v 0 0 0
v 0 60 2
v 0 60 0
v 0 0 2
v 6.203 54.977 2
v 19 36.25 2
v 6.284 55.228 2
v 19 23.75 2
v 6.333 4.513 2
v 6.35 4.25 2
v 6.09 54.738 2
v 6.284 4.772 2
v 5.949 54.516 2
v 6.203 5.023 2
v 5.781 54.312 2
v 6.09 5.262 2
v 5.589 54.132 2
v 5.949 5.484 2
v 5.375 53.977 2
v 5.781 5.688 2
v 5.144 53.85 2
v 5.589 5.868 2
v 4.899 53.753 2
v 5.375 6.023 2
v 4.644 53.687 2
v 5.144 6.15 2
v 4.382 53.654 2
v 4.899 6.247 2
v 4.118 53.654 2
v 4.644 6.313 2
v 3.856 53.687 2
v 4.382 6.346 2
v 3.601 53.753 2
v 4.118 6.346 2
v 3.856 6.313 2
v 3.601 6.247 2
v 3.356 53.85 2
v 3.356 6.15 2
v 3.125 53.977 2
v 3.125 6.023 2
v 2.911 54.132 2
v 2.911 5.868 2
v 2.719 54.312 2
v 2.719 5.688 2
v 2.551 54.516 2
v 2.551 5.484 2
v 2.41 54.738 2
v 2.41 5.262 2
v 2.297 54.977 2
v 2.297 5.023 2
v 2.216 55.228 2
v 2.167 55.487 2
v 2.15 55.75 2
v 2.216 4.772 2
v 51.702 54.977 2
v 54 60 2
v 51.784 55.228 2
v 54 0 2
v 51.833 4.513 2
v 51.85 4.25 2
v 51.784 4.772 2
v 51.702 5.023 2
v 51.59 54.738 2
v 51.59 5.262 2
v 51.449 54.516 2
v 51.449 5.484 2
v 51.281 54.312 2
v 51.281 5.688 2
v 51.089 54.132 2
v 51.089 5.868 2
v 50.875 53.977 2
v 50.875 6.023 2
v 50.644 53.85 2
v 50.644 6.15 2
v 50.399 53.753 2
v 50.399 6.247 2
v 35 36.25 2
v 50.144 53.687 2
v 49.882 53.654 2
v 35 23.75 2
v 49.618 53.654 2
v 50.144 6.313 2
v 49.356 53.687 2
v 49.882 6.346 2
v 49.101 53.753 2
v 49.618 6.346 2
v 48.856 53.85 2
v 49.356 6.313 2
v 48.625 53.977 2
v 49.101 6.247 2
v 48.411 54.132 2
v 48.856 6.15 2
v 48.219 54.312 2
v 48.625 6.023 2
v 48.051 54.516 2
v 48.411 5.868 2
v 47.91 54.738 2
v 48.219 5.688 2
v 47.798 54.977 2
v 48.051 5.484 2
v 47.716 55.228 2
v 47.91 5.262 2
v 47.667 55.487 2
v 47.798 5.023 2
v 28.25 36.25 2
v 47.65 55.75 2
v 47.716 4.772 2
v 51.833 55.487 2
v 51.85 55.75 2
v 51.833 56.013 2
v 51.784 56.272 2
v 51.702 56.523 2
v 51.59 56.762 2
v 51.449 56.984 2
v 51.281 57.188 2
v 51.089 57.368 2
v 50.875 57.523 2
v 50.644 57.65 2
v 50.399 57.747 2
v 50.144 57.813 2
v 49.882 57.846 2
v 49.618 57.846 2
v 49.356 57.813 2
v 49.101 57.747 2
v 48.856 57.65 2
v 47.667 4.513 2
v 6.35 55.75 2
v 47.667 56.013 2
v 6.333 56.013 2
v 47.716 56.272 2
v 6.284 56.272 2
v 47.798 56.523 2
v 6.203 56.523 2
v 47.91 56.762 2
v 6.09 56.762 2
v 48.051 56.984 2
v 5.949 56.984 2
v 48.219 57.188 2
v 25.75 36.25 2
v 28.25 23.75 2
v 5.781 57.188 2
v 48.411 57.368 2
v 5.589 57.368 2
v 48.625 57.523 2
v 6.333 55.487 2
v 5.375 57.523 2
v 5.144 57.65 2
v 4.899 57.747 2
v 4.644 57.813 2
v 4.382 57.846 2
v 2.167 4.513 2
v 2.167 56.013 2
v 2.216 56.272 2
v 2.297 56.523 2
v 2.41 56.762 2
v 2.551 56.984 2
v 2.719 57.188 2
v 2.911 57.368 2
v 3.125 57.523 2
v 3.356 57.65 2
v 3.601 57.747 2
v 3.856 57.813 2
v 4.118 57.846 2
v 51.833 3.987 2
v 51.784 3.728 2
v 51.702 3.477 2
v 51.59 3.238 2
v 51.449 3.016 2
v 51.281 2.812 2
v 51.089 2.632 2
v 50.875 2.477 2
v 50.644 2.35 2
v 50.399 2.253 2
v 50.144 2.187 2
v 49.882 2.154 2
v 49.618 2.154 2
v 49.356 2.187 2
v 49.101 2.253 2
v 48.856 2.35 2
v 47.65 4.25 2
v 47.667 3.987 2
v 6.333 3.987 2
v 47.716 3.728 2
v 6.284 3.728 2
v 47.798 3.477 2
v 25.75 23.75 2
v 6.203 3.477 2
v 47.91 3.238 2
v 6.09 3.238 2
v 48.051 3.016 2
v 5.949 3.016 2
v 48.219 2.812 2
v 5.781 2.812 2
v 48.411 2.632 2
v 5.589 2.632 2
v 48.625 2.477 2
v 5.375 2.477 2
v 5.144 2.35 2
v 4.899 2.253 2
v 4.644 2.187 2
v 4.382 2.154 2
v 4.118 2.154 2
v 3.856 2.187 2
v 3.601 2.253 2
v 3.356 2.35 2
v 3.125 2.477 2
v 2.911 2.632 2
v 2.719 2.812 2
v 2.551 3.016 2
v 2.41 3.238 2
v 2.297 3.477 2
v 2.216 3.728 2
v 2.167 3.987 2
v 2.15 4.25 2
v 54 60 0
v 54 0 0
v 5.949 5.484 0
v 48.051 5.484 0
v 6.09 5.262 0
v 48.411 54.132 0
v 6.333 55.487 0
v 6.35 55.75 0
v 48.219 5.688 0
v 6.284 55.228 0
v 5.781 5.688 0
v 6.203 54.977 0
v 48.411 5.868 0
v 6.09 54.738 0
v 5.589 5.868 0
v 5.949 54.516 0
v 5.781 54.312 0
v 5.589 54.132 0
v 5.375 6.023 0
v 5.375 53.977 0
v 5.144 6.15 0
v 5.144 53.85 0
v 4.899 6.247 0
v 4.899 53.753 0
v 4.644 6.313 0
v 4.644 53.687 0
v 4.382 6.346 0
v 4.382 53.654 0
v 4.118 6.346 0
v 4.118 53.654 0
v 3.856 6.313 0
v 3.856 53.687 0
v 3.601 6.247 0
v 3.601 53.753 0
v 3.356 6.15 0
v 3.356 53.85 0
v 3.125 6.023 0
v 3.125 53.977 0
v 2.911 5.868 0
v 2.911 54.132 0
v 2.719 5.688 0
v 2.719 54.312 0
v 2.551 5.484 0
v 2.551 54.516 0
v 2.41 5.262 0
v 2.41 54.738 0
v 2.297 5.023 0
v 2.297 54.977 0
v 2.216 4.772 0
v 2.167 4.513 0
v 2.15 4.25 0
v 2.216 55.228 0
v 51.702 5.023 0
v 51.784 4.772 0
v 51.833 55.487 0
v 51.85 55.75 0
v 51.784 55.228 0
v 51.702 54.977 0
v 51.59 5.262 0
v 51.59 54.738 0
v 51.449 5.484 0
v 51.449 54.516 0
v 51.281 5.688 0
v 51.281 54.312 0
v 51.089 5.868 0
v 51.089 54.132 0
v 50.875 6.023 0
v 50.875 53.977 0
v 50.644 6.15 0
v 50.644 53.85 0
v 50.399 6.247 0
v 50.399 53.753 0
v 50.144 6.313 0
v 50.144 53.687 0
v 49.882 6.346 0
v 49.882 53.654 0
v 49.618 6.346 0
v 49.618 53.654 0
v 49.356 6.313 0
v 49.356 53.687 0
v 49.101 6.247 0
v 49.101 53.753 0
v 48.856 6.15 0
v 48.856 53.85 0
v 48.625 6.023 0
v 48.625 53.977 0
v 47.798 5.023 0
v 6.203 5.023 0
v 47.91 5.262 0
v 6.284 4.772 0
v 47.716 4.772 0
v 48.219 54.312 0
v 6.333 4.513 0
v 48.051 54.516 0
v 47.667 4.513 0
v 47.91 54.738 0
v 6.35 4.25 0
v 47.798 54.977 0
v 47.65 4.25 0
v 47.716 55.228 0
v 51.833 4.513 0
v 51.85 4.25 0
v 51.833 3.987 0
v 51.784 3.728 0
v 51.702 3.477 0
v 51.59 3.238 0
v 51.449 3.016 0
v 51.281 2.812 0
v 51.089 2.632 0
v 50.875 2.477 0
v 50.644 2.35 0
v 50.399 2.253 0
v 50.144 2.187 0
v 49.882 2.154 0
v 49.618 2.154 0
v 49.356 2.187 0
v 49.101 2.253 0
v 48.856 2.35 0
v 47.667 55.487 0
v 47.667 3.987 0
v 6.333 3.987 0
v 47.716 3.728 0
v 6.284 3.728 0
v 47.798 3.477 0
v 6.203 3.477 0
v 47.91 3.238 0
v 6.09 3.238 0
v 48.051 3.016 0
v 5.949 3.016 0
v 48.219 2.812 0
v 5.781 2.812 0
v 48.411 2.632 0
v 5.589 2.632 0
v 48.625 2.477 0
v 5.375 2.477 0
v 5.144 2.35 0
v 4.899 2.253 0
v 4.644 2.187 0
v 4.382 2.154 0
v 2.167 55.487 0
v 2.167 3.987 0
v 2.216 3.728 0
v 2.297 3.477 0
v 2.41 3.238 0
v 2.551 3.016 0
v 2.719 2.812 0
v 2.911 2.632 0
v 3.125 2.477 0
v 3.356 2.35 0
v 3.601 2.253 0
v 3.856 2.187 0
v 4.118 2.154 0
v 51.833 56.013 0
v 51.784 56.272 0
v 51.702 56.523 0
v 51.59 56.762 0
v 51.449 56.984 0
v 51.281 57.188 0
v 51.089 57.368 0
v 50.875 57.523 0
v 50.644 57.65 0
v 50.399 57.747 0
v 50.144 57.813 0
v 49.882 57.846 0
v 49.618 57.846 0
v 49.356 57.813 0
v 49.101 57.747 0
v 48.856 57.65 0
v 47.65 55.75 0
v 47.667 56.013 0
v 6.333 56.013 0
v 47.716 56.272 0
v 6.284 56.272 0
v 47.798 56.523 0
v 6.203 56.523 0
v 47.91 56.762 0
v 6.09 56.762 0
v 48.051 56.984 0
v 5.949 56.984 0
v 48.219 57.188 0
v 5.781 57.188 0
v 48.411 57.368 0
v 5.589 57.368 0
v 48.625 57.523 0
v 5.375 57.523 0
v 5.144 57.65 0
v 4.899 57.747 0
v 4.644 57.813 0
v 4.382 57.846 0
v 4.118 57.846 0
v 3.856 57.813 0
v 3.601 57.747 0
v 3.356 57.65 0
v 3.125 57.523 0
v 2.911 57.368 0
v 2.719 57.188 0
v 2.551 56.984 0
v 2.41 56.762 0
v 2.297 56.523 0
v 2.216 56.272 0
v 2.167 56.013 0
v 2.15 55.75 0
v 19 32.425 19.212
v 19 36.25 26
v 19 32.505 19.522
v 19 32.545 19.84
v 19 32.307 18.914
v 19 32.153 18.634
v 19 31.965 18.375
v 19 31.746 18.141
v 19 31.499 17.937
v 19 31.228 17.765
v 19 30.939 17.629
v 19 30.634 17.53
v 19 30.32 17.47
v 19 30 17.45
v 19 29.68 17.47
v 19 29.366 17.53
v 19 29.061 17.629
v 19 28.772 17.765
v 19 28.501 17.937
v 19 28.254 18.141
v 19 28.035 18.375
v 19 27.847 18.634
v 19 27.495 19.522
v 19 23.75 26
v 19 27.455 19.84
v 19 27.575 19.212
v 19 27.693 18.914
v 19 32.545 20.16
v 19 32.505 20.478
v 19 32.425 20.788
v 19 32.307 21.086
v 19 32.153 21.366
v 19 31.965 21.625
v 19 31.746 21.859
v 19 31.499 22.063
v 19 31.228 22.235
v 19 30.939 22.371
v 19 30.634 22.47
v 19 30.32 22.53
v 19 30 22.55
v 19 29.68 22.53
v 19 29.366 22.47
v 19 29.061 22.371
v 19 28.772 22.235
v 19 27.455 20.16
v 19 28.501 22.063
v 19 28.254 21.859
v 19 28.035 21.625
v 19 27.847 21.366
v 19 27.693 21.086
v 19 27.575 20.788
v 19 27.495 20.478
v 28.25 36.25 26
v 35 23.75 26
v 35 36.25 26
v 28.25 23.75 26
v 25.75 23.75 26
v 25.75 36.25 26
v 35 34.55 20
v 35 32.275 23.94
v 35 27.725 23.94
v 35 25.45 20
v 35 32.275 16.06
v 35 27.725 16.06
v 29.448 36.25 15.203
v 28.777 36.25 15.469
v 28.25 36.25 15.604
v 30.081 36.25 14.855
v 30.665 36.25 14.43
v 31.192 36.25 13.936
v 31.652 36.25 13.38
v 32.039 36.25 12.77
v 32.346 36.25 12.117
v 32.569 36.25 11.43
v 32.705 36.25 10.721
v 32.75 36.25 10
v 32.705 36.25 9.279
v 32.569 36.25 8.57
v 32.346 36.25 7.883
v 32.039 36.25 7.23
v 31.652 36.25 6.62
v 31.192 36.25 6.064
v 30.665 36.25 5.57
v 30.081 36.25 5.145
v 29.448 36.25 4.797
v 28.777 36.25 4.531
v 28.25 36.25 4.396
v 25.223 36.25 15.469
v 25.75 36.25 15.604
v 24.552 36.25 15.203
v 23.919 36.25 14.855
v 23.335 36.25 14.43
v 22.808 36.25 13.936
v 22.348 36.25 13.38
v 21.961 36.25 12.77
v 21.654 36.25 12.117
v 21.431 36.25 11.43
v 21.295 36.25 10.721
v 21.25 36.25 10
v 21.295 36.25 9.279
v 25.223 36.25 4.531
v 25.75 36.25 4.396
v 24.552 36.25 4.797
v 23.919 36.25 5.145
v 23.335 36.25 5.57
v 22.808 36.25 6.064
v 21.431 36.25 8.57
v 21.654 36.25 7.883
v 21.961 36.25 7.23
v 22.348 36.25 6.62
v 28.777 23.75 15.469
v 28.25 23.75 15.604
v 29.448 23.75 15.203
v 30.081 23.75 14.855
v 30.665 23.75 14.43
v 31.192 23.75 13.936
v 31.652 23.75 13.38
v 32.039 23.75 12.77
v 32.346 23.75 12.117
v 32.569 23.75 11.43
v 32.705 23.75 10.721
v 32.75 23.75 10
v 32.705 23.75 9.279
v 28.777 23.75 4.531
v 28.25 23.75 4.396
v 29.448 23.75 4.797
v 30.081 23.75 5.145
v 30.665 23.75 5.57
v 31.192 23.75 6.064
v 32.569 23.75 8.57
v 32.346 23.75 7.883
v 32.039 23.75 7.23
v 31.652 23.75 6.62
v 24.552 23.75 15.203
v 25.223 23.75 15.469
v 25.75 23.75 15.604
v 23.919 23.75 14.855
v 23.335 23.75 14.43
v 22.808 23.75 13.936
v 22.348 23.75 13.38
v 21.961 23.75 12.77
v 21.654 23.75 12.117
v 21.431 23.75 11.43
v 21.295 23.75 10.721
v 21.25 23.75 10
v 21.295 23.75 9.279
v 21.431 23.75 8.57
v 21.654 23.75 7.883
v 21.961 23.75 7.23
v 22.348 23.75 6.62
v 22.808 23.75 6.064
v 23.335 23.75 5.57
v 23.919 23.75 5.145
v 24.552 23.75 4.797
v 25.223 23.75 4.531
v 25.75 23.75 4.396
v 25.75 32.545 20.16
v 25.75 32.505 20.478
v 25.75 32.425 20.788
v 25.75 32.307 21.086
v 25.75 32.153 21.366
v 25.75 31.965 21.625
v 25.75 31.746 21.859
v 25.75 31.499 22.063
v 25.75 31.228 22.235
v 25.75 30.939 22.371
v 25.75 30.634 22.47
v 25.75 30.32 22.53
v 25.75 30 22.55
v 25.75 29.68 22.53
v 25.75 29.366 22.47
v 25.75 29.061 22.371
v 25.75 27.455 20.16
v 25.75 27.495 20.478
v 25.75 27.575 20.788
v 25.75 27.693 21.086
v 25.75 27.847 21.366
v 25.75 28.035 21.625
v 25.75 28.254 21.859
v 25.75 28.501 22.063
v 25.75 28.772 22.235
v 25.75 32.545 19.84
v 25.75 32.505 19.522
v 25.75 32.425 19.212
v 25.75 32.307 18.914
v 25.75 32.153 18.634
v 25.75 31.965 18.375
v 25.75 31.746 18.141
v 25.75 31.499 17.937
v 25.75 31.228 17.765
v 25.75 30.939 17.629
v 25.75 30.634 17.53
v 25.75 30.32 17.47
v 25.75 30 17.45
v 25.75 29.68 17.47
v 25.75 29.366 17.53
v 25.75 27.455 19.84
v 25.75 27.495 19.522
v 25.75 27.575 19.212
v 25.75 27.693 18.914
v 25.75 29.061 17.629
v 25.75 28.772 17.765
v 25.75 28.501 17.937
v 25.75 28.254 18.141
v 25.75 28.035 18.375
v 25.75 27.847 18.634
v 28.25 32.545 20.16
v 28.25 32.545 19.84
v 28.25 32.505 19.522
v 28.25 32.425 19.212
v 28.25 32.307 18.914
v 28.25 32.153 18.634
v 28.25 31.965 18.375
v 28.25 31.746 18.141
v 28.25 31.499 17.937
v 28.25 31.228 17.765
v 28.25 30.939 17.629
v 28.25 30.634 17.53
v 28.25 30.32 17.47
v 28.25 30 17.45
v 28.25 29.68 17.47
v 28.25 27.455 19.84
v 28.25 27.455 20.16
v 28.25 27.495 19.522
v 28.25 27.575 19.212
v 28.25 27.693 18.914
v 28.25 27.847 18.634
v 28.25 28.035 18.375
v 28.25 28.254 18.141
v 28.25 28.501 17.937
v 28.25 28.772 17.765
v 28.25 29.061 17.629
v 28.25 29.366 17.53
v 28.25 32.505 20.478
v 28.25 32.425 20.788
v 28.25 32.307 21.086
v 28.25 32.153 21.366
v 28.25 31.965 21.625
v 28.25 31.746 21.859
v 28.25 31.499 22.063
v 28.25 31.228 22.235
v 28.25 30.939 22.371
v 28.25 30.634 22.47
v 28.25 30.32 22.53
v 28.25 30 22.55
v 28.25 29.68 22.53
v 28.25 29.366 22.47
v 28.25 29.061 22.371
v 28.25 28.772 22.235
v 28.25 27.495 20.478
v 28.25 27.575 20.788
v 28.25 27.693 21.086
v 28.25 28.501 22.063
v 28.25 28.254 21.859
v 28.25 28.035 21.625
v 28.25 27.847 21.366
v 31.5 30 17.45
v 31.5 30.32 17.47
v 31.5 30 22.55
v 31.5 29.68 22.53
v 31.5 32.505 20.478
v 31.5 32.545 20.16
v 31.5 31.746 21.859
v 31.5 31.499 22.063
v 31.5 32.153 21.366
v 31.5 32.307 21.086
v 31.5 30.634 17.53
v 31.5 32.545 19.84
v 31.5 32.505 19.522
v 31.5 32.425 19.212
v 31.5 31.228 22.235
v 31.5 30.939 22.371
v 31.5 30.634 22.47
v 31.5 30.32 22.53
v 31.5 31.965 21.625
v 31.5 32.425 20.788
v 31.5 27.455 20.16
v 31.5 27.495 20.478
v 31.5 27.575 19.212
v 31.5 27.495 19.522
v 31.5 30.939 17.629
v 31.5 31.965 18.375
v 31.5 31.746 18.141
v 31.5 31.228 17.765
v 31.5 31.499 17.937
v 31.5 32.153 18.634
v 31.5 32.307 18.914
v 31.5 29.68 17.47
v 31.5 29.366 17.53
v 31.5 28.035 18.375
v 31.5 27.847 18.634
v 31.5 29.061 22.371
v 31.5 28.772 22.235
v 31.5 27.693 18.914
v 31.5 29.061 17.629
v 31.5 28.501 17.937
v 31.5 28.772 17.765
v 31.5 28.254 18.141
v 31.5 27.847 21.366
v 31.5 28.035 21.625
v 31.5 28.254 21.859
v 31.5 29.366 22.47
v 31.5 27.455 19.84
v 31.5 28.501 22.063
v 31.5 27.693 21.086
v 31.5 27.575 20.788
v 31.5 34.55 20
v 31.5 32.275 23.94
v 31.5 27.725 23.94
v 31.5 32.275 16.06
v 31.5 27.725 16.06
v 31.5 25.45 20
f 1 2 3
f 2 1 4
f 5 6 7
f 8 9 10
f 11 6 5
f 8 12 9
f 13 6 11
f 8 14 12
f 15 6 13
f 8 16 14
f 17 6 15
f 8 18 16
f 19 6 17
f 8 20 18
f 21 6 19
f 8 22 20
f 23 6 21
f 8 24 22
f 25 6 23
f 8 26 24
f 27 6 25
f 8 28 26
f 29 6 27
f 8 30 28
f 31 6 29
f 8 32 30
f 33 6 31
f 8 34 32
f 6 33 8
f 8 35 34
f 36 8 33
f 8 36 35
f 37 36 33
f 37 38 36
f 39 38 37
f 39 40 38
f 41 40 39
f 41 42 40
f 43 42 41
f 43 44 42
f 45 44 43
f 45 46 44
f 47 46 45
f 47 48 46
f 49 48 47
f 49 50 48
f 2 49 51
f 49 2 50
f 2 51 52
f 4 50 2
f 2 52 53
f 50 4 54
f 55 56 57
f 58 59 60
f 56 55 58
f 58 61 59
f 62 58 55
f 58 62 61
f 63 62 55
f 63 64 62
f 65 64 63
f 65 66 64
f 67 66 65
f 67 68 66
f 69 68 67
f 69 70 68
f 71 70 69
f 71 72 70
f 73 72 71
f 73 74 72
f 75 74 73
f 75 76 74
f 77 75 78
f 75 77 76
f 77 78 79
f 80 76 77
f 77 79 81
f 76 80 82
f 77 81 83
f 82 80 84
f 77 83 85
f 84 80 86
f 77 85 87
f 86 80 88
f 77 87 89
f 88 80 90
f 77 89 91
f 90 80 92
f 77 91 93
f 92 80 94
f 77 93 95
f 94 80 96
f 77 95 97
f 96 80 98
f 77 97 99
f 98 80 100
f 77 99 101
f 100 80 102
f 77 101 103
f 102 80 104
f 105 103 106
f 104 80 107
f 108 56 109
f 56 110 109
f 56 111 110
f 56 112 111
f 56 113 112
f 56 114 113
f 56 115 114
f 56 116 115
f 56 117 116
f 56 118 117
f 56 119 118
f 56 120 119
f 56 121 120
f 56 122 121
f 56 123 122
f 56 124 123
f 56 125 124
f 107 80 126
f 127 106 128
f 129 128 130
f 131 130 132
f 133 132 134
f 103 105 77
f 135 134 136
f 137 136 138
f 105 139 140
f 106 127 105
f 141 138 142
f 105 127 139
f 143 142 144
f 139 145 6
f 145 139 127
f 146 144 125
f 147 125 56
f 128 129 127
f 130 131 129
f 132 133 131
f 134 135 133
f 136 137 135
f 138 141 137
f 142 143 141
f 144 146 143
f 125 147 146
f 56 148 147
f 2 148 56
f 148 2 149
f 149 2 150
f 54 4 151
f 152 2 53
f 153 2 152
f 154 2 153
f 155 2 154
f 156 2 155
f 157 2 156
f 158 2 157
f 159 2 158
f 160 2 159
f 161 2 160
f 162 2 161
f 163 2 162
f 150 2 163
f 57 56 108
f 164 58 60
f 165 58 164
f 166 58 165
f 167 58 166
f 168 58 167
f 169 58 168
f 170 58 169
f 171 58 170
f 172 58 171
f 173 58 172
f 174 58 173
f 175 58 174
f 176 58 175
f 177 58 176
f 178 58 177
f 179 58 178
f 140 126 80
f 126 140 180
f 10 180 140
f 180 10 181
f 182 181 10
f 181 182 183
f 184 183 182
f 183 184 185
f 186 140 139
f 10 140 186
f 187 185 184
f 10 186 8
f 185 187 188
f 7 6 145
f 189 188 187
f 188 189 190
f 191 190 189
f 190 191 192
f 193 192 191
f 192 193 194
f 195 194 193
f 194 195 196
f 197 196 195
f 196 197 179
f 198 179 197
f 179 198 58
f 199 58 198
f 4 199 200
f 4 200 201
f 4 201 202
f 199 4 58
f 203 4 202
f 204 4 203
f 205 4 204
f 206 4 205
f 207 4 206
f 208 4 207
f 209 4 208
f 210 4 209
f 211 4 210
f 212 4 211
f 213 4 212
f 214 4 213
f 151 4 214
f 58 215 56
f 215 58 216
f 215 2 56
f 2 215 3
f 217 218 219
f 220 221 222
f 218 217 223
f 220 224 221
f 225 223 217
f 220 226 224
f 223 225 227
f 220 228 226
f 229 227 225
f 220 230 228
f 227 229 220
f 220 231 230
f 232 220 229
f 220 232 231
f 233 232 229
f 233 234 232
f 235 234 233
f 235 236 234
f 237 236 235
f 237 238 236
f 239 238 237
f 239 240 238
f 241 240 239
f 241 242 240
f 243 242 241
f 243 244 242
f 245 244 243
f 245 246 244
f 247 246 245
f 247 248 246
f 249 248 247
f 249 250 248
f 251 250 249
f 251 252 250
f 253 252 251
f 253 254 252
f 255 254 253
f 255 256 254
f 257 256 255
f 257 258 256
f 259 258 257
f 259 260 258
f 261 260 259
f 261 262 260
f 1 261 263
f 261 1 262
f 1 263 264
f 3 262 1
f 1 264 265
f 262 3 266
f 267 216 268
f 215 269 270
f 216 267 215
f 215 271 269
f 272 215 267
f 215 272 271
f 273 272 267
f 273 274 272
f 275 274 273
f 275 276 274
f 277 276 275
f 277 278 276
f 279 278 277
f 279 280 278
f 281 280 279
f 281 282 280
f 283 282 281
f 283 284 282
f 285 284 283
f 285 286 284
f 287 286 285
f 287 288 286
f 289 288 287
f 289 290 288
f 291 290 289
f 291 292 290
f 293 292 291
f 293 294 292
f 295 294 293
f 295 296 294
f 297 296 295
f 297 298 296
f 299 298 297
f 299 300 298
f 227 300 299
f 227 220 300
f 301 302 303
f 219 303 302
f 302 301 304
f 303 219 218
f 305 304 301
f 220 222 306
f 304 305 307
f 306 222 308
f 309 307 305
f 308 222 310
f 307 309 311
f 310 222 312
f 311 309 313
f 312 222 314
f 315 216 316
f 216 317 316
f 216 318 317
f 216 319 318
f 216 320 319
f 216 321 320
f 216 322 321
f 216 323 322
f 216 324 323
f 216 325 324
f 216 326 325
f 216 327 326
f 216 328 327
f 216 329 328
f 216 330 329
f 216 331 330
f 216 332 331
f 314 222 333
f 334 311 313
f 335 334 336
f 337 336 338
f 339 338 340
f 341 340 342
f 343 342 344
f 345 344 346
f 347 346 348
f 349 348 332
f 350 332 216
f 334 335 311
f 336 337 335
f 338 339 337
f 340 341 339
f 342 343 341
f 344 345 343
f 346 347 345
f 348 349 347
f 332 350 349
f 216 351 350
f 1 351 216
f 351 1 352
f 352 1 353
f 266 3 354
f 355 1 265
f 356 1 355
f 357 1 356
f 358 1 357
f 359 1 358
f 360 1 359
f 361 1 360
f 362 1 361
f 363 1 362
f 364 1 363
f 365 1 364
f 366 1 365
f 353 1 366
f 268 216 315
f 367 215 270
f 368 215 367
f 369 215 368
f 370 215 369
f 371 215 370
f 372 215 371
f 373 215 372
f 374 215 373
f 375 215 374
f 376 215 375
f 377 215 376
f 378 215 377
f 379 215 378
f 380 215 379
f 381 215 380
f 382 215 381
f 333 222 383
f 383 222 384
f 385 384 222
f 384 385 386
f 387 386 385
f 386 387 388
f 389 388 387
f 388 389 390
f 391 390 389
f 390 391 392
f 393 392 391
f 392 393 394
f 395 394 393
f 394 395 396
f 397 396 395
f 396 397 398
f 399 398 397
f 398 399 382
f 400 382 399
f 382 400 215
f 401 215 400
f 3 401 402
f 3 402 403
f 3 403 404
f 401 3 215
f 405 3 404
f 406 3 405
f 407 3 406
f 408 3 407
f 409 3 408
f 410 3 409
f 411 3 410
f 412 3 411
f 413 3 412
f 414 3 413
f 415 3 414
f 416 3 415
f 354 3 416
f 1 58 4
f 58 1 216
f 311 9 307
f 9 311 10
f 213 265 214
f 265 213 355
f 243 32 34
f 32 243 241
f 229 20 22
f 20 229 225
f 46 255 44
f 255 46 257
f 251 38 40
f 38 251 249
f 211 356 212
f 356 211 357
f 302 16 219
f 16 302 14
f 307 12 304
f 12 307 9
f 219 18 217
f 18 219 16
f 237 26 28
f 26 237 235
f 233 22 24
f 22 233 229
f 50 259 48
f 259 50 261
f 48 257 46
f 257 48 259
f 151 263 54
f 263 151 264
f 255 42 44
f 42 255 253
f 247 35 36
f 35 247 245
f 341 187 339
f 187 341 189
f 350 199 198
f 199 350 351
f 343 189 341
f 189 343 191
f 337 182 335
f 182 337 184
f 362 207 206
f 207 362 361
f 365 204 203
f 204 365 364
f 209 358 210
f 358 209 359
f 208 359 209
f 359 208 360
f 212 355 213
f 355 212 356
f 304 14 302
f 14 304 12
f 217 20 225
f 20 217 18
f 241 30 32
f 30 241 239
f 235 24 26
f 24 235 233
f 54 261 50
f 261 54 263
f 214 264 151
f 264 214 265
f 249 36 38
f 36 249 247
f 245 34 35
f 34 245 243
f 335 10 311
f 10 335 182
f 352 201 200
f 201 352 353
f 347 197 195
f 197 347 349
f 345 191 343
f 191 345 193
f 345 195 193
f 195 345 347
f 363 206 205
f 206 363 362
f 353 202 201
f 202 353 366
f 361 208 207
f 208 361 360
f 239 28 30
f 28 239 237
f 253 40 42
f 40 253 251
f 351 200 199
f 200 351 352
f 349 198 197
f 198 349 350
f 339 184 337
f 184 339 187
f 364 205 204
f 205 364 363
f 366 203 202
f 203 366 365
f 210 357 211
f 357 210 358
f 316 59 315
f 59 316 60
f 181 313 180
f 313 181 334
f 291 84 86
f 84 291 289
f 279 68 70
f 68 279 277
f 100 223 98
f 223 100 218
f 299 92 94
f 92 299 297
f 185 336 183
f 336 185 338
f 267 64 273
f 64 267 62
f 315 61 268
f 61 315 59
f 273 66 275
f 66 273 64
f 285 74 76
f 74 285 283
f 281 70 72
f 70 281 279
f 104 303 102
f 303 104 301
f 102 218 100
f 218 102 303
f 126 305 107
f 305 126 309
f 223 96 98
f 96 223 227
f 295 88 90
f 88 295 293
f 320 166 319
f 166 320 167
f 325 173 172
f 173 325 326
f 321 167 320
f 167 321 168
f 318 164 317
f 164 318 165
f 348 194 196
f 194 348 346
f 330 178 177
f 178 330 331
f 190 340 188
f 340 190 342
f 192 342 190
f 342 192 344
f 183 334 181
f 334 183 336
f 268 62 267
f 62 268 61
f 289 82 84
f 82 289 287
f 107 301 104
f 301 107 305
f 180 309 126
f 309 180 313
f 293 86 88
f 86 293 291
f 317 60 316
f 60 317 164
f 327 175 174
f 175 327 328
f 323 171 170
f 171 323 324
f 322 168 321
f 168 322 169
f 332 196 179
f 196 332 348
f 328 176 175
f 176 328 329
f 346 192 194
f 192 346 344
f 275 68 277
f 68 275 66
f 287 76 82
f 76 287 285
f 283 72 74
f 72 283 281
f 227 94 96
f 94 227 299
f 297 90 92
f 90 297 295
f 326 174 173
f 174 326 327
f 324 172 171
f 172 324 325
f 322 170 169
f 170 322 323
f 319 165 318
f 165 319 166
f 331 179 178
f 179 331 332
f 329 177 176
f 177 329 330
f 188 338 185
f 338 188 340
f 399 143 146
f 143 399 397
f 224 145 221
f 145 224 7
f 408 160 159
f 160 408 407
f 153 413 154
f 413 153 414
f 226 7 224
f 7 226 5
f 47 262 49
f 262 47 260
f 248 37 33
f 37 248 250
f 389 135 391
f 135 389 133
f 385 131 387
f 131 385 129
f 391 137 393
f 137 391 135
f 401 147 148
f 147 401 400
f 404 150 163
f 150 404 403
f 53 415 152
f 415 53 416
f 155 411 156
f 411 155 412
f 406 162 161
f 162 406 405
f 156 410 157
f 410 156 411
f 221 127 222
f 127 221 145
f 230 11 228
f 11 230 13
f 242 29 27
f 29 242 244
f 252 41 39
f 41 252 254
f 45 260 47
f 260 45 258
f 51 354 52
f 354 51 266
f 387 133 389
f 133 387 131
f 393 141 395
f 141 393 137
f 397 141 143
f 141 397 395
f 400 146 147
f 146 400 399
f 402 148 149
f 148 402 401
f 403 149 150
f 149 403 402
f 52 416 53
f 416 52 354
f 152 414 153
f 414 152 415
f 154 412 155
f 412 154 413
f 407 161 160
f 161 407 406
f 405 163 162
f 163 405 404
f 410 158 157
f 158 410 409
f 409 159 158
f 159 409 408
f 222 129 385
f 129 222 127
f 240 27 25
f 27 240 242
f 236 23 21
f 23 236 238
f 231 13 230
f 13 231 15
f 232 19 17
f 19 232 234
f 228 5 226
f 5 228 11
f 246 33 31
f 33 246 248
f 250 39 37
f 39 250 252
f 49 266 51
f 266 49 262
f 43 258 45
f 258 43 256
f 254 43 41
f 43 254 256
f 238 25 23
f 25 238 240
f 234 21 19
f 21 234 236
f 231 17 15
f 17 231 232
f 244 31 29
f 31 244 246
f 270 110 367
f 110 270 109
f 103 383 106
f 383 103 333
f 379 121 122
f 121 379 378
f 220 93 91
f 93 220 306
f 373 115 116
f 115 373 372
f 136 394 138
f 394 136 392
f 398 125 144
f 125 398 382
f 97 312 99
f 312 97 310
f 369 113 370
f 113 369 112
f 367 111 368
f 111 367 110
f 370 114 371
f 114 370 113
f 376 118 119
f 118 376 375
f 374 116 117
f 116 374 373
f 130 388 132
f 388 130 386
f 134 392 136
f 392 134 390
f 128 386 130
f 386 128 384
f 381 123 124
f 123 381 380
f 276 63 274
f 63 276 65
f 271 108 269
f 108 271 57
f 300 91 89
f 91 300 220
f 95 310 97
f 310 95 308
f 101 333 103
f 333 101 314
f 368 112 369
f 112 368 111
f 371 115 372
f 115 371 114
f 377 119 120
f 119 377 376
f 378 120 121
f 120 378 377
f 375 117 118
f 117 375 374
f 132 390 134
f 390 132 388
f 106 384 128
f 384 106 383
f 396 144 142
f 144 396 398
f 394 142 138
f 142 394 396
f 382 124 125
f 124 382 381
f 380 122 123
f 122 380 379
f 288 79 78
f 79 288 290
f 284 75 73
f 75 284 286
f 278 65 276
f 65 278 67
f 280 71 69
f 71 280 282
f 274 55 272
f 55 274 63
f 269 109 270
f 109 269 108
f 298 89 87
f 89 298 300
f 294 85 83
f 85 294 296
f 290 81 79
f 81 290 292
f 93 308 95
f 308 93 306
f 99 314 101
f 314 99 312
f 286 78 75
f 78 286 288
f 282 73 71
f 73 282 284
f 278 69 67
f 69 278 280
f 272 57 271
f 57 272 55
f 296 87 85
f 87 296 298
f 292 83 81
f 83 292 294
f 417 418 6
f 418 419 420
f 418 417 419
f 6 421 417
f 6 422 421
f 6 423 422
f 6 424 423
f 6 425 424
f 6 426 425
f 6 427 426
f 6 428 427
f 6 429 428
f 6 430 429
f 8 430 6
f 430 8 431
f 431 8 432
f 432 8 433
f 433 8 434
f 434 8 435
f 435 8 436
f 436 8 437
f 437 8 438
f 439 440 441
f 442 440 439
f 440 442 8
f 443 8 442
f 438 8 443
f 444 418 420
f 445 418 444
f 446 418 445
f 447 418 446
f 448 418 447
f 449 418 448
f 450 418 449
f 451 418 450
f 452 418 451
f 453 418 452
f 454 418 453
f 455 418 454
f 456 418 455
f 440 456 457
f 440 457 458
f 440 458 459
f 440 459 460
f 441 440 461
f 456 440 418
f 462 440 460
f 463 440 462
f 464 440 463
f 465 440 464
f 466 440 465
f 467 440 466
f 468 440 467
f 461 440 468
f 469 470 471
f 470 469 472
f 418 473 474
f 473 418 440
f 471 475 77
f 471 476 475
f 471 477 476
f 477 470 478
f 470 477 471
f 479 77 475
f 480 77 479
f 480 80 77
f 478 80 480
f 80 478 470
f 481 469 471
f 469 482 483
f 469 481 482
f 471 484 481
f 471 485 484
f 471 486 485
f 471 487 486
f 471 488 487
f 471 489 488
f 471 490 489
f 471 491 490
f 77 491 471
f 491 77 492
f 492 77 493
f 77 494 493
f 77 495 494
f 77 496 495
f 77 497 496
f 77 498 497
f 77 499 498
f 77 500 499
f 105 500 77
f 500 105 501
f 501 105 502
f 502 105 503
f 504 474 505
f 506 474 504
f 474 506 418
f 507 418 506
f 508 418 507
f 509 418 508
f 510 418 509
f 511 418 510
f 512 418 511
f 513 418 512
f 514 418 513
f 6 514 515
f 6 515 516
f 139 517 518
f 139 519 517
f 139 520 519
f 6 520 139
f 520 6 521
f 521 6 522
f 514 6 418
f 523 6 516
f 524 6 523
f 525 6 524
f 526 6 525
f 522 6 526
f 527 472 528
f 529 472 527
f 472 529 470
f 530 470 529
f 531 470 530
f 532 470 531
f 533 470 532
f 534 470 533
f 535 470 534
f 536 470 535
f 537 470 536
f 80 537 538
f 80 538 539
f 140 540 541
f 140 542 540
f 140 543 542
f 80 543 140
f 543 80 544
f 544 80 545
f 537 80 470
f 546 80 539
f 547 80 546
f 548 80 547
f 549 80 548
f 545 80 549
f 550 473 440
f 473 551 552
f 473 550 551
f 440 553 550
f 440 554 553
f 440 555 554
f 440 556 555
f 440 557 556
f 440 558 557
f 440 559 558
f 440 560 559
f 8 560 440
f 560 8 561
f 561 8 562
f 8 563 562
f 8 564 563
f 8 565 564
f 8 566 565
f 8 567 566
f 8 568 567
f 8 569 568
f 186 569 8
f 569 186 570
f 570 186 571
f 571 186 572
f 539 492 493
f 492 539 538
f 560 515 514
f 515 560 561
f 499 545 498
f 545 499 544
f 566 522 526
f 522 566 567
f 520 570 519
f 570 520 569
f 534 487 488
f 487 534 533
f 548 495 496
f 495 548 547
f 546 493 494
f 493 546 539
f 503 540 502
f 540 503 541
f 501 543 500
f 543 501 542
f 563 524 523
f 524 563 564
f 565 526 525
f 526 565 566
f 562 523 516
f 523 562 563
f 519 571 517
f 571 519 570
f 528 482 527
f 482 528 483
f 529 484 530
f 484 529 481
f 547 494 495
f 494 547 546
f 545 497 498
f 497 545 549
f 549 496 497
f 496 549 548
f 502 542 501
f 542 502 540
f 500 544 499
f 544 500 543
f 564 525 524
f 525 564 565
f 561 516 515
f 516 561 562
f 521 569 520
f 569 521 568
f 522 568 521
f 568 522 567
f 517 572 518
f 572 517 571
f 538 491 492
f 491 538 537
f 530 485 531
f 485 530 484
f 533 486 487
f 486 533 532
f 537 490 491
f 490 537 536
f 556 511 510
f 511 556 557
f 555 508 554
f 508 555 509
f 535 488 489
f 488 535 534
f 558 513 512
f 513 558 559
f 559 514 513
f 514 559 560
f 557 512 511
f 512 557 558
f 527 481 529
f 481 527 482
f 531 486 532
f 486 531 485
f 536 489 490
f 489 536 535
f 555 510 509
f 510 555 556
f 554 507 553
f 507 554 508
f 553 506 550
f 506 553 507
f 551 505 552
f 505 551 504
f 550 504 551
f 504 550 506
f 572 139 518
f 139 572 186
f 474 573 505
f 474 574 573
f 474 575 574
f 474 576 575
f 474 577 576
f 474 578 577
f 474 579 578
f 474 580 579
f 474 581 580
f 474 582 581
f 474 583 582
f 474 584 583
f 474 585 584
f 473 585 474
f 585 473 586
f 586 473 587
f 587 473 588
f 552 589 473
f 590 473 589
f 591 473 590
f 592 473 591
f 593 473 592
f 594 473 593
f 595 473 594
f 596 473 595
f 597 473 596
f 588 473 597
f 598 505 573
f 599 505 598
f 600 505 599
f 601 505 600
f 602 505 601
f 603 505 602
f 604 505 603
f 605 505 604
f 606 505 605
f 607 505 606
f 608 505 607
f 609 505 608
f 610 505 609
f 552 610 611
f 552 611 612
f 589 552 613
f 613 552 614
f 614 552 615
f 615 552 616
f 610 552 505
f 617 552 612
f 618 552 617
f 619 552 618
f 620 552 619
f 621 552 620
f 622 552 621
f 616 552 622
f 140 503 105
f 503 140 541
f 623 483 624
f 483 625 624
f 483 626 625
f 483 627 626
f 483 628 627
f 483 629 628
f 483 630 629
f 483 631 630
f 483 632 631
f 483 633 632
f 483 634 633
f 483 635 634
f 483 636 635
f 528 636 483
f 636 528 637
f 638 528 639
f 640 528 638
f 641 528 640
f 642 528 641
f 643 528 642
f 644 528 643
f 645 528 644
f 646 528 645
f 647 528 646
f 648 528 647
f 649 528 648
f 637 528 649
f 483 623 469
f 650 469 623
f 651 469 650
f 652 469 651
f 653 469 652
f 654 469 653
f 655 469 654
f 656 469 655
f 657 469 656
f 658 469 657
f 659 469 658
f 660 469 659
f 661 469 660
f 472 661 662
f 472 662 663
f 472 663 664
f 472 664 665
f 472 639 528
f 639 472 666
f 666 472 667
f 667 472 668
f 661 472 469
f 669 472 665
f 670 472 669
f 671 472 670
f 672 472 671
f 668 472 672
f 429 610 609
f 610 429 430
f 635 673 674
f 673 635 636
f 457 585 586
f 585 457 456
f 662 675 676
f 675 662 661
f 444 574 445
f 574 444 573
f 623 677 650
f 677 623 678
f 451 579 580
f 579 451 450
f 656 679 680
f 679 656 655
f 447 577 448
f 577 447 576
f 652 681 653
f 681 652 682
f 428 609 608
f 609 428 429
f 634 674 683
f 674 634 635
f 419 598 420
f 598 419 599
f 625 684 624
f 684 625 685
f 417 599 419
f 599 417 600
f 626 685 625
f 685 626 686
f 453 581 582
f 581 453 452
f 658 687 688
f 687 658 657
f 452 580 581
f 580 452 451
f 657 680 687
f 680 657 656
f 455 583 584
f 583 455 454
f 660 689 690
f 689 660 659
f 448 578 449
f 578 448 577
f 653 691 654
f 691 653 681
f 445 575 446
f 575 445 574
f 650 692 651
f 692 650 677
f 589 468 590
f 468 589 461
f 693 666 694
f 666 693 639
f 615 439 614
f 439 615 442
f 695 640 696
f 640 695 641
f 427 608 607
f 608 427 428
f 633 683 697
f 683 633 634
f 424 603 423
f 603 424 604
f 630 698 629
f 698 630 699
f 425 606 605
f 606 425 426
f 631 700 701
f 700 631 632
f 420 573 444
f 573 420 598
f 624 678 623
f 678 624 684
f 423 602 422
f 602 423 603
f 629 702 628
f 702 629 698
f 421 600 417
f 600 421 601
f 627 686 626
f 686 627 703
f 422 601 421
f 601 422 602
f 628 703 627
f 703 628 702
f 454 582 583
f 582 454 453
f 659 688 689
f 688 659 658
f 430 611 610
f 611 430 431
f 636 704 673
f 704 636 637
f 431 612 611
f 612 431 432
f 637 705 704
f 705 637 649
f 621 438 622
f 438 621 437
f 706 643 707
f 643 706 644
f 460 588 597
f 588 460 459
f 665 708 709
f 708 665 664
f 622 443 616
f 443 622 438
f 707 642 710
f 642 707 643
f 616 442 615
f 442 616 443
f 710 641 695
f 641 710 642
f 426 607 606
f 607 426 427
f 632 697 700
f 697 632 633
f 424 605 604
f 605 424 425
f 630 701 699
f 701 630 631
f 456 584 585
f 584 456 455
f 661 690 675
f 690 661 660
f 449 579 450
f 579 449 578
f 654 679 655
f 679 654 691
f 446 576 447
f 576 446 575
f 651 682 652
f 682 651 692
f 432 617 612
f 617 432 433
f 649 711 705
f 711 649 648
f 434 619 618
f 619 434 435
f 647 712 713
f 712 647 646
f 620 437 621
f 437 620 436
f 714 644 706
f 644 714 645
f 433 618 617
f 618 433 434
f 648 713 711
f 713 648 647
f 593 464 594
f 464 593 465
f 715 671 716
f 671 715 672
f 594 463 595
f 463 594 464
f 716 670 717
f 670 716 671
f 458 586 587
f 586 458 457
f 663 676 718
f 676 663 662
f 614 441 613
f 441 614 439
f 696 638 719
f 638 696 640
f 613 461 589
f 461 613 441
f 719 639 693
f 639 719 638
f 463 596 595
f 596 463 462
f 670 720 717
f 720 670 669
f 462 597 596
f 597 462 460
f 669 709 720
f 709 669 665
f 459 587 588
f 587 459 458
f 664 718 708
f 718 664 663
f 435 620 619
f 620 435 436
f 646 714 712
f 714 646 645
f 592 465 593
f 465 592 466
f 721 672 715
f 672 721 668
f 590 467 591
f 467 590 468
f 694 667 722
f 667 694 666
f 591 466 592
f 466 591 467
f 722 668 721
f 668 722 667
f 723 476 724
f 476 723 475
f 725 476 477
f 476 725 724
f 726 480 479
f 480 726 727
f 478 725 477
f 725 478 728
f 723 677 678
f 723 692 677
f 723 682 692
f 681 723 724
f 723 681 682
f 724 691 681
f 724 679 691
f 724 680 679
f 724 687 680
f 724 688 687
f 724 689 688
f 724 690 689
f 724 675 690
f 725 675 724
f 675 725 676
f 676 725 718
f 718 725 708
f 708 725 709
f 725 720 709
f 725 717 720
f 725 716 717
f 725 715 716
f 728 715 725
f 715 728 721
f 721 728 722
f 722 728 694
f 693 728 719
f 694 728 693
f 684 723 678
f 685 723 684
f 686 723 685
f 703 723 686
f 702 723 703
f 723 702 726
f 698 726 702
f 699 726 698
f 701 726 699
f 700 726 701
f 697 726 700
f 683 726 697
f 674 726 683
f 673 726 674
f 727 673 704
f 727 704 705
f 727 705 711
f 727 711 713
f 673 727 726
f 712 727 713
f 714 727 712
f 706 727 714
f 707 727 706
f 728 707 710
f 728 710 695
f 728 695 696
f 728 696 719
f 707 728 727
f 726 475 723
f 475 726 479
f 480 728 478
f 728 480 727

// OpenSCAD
$fn = 50;
platethickness = 2;
union(){
    difference(){
        cube([54, 60, platethickness]);
        translate([2.2 + 2.05, 2.2 + 2.05, 0]) cylinder(platethickness, 2.1, 2.1);
        translate([54 - (2.2 + 2.05), 2.2 + 2.05, 0]) cylinder(platethickness, 2.1, 2.1);
        translate([2.2 + 2.05, 60 - (2.2 + 2.05), 0]) cylinder(platethickness, 2.1, 2.1);
        translate([54 - (2.2 + 2.05), 60 - (2.2 + 2.05), 0]) cylinder(platethickness, 2.1, 2.1);
    }
    difference(){
        translate([54/2, 60/2, platethickness]){
            translate([0, 0, 12]) cube([5*2+4+2, 12.5, 24], true);
            //translate([0, 0, 12]) cube([5*2+4, 12.5, 24], true);
            //translate([2.5 + 3, -12.5/2, 0]) cube([5/2, 12.5, 10]);
            //translate([54/2, 30-12.5/2, 5]) rotate([-90, 0, 0]) cylinder(12.5, 5, 5);
        }
    
        //translate([54/2, 30-12.5/2, platethickness + 10]) rotate([-90, 0, 0]) cylinder(12.5, 8, 8);
        translate([54/2, 30-12.5/2, platethickness + 8]) rotate([-90, 0, 0]) cylinder(12.5, 11.5/2, 11.5/2);
        //translate([54/2, 30-12.5/2, platethickness + 8]) rotate([-90, 0, 0]) cylinder(12.5, 5, 5);
        translate([54/2, 60/2, platethickness + 15]) cube([5/2, 12.5, 30], true);
        translate([54/2, 30, platethickness + 18]) rotate([0, 90, 0]) cylinder(20, 2.55, 2.55, true);
        translate([54/2 + 4.5, 30, platethickness + 18]) rotate([0, 90, 0]) rotate([0, 0, 90]) cylinder(5, 4.55, 4.55, false, $fn = 6);
    }
    //translate([54/2, 60/2, platethickness]) cube([5, 12.5, 5]);
}
